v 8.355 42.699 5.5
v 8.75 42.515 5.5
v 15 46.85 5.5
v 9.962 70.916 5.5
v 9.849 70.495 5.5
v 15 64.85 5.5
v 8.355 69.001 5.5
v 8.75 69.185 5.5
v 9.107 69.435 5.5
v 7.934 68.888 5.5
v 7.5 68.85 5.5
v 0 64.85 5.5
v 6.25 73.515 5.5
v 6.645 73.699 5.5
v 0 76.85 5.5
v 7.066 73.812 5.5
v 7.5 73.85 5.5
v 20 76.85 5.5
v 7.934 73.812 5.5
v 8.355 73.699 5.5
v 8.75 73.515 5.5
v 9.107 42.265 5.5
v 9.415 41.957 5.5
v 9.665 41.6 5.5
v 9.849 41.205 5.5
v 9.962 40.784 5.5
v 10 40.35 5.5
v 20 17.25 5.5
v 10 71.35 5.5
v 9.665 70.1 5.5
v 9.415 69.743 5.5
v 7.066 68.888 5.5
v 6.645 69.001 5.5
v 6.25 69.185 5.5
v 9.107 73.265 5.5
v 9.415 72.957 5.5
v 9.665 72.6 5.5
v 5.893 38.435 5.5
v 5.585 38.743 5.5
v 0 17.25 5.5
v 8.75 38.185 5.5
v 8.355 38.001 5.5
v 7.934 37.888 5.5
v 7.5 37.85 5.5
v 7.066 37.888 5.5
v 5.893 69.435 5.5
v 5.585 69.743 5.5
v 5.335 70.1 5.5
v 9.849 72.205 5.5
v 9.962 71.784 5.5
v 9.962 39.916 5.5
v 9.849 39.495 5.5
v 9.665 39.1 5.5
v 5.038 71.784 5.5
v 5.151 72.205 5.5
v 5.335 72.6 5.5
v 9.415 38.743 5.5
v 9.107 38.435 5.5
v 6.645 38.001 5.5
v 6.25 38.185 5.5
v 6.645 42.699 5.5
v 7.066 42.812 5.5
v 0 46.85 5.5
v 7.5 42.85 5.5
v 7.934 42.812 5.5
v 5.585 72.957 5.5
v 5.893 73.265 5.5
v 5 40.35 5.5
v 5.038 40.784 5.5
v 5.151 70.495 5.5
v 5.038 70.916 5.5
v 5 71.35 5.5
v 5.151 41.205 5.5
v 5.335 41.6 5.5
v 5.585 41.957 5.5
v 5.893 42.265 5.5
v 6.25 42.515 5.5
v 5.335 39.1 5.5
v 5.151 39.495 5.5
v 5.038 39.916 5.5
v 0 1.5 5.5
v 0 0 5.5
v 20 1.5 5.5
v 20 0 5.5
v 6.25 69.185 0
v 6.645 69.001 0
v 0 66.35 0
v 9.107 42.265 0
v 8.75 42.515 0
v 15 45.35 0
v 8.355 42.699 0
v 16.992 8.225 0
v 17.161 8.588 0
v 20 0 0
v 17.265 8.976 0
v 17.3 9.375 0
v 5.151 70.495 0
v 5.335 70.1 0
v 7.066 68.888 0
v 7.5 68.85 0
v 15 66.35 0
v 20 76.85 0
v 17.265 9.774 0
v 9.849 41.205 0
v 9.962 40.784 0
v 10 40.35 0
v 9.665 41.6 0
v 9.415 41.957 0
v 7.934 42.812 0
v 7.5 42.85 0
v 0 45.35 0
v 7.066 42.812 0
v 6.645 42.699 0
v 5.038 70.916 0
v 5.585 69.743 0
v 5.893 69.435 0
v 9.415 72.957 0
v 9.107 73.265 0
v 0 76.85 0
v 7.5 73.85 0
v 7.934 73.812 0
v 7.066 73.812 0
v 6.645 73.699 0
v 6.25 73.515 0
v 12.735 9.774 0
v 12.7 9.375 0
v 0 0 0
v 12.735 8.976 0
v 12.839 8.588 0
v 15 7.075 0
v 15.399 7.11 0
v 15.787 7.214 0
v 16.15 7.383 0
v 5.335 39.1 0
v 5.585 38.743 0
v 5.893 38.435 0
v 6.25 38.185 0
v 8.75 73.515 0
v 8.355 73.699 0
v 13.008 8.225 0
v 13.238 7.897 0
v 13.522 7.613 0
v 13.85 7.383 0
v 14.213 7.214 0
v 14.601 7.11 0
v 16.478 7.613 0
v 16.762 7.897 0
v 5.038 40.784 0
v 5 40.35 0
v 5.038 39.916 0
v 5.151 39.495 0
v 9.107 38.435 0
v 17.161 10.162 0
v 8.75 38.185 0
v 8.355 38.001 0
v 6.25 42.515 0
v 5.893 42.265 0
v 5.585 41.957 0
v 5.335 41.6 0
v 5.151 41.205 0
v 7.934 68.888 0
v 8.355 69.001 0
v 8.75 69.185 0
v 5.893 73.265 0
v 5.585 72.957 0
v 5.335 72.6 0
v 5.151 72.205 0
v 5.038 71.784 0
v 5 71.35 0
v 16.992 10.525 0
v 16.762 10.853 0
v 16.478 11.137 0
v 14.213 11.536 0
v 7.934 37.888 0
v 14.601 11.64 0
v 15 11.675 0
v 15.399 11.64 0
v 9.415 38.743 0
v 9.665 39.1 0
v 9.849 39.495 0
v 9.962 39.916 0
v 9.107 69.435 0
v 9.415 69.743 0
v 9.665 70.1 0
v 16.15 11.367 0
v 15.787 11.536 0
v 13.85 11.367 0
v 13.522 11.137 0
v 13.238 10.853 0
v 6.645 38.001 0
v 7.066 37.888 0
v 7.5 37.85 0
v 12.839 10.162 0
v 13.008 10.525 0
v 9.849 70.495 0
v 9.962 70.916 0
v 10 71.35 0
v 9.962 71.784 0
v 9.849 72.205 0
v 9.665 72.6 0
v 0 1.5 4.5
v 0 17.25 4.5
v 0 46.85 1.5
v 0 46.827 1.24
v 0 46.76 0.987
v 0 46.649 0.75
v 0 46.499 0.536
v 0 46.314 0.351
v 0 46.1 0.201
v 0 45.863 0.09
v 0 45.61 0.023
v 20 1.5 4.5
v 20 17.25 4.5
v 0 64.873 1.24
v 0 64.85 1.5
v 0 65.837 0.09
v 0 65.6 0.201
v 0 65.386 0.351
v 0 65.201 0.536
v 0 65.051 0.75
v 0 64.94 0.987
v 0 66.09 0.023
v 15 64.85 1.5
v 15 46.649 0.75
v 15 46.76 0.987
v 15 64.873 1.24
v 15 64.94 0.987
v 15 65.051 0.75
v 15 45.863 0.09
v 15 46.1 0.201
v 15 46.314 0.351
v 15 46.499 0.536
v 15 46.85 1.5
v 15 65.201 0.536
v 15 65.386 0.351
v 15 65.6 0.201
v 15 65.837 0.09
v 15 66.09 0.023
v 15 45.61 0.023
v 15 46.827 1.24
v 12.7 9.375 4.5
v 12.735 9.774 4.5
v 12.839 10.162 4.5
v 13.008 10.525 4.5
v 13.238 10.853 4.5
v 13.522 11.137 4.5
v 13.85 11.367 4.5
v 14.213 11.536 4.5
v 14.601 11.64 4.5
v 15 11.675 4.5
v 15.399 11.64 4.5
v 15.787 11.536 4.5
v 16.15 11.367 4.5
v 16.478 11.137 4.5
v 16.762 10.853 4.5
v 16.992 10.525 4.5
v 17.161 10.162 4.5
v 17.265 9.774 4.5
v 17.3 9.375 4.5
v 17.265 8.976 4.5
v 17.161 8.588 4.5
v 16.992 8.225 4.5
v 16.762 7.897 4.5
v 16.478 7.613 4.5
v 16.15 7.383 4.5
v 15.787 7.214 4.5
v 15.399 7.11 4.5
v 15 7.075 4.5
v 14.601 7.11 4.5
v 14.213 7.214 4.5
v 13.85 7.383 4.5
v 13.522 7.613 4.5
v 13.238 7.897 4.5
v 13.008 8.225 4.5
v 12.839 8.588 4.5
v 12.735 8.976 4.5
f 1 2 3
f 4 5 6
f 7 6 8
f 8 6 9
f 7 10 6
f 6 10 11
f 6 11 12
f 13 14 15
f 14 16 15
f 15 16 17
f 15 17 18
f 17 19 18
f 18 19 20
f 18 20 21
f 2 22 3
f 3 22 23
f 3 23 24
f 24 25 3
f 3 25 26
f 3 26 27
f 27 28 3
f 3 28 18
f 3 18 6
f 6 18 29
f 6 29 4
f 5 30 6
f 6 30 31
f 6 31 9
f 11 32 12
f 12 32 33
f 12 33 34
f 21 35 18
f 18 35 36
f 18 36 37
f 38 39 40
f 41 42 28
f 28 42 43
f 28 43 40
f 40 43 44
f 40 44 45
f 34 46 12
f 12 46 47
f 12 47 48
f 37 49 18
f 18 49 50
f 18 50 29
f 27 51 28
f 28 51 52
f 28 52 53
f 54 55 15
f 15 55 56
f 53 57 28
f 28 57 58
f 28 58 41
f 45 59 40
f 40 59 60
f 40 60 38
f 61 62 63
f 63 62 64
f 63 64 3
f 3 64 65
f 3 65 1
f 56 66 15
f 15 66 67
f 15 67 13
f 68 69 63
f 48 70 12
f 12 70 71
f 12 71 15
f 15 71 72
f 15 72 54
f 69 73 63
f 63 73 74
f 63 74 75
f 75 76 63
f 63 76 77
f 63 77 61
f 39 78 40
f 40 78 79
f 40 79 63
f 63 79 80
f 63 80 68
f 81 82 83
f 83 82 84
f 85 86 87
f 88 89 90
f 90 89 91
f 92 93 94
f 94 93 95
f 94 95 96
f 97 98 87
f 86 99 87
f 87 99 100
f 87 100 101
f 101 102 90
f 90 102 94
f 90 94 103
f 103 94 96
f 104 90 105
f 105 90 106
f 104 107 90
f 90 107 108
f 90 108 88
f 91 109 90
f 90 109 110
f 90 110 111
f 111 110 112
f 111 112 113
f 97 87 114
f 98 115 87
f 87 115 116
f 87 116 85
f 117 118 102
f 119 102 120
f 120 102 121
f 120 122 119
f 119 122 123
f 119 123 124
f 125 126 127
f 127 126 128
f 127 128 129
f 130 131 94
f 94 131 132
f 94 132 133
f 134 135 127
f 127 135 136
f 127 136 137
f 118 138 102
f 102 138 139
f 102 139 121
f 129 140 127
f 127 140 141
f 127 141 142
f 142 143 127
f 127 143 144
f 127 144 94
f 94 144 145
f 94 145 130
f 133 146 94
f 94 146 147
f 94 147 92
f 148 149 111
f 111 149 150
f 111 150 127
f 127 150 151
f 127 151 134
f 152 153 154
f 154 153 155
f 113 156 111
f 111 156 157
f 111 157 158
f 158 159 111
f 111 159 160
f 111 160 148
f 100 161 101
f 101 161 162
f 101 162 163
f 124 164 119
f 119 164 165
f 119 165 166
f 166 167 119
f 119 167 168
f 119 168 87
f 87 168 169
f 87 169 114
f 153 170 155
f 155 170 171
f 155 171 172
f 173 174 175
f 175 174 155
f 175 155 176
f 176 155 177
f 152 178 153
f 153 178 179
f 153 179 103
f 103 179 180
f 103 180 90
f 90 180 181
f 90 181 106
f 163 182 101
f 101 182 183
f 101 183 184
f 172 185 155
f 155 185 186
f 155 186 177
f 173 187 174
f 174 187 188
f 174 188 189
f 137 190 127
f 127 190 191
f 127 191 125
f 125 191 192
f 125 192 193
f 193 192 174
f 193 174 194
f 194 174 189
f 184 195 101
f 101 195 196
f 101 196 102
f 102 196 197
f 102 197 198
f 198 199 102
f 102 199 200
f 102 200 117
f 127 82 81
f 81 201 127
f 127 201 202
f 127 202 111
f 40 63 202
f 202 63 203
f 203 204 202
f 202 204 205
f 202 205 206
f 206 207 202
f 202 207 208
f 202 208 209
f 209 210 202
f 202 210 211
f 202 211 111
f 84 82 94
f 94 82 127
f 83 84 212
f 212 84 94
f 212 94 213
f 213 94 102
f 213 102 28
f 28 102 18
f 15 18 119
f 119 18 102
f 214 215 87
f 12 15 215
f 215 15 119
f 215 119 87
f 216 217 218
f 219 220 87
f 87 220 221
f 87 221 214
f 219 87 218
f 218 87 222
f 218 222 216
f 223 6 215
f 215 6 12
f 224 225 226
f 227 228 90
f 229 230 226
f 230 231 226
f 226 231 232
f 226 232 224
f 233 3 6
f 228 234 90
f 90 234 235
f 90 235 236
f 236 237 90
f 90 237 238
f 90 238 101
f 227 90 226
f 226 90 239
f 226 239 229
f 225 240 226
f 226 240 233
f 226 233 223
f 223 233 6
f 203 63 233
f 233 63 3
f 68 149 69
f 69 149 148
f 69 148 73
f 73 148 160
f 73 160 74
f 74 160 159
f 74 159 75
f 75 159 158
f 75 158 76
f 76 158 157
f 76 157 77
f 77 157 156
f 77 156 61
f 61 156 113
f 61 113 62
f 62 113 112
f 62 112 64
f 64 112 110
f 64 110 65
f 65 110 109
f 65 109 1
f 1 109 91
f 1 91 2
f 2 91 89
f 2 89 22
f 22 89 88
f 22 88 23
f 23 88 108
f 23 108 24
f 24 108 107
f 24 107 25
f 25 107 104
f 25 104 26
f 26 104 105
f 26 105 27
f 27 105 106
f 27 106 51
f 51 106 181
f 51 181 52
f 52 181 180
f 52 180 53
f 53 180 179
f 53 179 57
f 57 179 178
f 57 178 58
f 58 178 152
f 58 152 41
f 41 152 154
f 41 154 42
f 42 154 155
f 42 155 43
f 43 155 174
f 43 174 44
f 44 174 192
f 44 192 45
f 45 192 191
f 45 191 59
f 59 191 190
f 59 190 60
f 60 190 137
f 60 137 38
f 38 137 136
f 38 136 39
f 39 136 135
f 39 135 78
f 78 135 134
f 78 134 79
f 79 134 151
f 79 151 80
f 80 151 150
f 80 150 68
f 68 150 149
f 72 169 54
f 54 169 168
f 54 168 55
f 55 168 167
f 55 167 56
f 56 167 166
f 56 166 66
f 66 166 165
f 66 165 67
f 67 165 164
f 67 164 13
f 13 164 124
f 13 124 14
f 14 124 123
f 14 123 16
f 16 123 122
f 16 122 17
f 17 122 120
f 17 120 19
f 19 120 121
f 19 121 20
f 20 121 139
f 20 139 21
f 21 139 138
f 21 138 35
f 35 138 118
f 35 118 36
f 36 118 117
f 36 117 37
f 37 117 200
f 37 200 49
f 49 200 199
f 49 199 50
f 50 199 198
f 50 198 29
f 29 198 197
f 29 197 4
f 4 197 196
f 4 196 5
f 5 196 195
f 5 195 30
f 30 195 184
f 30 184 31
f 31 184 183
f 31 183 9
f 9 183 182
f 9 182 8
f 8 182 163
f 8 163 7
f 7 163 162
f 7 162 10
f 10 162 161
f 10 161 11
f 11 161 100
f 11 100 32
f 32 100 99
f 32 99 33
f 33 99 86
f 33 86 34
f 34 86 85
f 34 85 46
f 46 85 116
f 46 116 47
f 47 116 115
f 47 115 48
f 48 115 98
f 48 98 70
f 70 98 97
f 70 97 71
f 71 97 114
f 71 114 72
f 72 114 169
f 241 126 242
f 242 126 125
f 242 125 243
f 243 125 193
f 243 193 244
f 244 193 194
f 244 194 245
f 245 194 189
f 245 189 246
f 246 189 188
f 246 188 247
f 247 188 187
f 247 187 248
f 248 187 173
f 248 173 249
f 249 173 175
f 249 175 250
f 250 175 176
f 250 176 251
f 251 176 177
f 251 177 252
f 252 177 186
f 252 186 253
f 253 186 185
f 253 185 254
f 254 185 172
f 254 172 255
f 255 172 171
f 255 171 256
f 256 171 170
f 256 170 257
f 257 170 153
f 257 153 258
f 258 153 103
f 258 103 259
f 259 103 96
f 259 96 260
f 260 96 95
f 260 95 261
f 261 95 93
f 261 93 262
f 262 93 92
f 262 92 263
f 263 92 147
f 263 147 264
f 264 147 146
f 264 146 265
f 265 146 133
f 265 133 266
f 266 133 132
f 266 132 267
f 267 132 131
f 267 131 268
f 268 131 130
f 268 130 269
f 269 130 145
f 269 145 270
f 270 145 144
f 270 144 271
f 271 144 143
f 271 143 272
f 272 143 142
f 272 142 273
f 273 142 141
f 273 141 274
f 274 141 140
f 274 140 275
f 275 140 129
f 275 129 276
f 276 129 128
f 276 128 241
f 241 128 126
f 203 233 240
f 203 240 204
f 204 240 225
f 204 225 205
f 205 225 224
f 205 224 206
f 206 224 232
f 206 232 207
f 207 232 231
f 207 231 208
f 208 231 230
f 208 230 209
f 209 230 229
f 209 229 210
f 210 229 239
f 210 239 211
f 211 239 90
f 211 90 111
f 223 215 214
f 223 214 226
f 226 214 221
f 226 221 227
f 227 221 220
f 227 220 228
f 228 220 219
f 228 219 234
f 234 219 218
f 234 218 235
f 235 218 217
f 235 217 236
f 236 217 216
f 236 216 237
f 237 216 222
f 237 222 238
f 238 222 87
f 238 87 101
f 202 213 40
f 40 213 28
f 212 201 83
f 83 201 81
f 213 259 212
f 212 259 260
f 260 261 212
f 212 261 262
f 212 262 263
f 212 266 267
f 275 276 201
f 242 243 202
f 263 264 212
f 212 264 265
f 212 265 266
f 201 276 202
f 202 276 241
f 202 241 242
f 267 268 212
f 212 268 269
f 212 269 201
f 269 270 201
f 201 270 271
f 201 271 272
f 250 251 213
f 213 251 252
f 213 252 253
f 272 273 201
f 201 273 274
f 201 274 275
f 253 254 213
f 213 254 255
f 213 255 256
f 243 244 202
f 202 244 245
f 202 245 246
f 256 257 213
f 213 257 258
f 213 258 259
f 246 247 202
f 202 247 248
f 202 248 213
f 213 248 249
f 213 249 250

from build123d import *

# Parameters (mm, degrees)
PROFILESKETCH3_R               = 2.5
PROFILESKETCH3_R_2             = 2.3
PROFILEBOSS_EXTRUDE1_DEPTH     = 5.5
FILLET1_R                      = 1.5
SKETCH1_W                      = 20
SKETCH1_H                      = 15.75
SLIDINGMOUNTCUT_EXTRUDE1_DEPTH = 1


with BuildPart() as part:
    # ProfileSketch3 → ProfileBoss-Extrude1 (new body)
    with BuildSketch(Plane.XY):
        Polygon((0, 46.85), (15, 46.85), (15, 64.85), (0, 64.85), (0, 76.85), (20, 76.85), (20, 0), (0, 0), align=None)
        with Locations((7.5, 40.35)):
            Circle(PROFILESKETCH3_R, mode=Mode.SUBTRACT)
        with Locations((7.5, 71.35)):
            Circle(PROFILESKETCH3_R, mode=Mode.SUBTRACT)
        with Locations((15, 9.375)):
            Circle(PROFILESKETCH3_R_2, mode=Mode.SUBTRACT)
    extrude(amount=PROFILEBOSS_EXTRUDE1_DEPTH)

    # Fillet1
    fillet1_edges = [part.edges().sort_by_distance(p)[0] for p in [
        (7.5, 46.85, 0),
        (7.5, 64.85, 0),
    ]]
    fillet(fillet1_edges, radius=FILLET1_R)

    # Sketch1 → SlidingMountCut-Extrude1 (cut)
    with BuildSketch(Plane.XY.offset(5.5)):
        with Locations((10, 9.375)):
            Rectangle(SKETCH1_W, SKETCH1_H)
    extrude(amount=-SLIDINGMOUNTCUT_EXTRUDE1_DEPTH, mode=Mode.SUBTRACT)


solid = part.part
